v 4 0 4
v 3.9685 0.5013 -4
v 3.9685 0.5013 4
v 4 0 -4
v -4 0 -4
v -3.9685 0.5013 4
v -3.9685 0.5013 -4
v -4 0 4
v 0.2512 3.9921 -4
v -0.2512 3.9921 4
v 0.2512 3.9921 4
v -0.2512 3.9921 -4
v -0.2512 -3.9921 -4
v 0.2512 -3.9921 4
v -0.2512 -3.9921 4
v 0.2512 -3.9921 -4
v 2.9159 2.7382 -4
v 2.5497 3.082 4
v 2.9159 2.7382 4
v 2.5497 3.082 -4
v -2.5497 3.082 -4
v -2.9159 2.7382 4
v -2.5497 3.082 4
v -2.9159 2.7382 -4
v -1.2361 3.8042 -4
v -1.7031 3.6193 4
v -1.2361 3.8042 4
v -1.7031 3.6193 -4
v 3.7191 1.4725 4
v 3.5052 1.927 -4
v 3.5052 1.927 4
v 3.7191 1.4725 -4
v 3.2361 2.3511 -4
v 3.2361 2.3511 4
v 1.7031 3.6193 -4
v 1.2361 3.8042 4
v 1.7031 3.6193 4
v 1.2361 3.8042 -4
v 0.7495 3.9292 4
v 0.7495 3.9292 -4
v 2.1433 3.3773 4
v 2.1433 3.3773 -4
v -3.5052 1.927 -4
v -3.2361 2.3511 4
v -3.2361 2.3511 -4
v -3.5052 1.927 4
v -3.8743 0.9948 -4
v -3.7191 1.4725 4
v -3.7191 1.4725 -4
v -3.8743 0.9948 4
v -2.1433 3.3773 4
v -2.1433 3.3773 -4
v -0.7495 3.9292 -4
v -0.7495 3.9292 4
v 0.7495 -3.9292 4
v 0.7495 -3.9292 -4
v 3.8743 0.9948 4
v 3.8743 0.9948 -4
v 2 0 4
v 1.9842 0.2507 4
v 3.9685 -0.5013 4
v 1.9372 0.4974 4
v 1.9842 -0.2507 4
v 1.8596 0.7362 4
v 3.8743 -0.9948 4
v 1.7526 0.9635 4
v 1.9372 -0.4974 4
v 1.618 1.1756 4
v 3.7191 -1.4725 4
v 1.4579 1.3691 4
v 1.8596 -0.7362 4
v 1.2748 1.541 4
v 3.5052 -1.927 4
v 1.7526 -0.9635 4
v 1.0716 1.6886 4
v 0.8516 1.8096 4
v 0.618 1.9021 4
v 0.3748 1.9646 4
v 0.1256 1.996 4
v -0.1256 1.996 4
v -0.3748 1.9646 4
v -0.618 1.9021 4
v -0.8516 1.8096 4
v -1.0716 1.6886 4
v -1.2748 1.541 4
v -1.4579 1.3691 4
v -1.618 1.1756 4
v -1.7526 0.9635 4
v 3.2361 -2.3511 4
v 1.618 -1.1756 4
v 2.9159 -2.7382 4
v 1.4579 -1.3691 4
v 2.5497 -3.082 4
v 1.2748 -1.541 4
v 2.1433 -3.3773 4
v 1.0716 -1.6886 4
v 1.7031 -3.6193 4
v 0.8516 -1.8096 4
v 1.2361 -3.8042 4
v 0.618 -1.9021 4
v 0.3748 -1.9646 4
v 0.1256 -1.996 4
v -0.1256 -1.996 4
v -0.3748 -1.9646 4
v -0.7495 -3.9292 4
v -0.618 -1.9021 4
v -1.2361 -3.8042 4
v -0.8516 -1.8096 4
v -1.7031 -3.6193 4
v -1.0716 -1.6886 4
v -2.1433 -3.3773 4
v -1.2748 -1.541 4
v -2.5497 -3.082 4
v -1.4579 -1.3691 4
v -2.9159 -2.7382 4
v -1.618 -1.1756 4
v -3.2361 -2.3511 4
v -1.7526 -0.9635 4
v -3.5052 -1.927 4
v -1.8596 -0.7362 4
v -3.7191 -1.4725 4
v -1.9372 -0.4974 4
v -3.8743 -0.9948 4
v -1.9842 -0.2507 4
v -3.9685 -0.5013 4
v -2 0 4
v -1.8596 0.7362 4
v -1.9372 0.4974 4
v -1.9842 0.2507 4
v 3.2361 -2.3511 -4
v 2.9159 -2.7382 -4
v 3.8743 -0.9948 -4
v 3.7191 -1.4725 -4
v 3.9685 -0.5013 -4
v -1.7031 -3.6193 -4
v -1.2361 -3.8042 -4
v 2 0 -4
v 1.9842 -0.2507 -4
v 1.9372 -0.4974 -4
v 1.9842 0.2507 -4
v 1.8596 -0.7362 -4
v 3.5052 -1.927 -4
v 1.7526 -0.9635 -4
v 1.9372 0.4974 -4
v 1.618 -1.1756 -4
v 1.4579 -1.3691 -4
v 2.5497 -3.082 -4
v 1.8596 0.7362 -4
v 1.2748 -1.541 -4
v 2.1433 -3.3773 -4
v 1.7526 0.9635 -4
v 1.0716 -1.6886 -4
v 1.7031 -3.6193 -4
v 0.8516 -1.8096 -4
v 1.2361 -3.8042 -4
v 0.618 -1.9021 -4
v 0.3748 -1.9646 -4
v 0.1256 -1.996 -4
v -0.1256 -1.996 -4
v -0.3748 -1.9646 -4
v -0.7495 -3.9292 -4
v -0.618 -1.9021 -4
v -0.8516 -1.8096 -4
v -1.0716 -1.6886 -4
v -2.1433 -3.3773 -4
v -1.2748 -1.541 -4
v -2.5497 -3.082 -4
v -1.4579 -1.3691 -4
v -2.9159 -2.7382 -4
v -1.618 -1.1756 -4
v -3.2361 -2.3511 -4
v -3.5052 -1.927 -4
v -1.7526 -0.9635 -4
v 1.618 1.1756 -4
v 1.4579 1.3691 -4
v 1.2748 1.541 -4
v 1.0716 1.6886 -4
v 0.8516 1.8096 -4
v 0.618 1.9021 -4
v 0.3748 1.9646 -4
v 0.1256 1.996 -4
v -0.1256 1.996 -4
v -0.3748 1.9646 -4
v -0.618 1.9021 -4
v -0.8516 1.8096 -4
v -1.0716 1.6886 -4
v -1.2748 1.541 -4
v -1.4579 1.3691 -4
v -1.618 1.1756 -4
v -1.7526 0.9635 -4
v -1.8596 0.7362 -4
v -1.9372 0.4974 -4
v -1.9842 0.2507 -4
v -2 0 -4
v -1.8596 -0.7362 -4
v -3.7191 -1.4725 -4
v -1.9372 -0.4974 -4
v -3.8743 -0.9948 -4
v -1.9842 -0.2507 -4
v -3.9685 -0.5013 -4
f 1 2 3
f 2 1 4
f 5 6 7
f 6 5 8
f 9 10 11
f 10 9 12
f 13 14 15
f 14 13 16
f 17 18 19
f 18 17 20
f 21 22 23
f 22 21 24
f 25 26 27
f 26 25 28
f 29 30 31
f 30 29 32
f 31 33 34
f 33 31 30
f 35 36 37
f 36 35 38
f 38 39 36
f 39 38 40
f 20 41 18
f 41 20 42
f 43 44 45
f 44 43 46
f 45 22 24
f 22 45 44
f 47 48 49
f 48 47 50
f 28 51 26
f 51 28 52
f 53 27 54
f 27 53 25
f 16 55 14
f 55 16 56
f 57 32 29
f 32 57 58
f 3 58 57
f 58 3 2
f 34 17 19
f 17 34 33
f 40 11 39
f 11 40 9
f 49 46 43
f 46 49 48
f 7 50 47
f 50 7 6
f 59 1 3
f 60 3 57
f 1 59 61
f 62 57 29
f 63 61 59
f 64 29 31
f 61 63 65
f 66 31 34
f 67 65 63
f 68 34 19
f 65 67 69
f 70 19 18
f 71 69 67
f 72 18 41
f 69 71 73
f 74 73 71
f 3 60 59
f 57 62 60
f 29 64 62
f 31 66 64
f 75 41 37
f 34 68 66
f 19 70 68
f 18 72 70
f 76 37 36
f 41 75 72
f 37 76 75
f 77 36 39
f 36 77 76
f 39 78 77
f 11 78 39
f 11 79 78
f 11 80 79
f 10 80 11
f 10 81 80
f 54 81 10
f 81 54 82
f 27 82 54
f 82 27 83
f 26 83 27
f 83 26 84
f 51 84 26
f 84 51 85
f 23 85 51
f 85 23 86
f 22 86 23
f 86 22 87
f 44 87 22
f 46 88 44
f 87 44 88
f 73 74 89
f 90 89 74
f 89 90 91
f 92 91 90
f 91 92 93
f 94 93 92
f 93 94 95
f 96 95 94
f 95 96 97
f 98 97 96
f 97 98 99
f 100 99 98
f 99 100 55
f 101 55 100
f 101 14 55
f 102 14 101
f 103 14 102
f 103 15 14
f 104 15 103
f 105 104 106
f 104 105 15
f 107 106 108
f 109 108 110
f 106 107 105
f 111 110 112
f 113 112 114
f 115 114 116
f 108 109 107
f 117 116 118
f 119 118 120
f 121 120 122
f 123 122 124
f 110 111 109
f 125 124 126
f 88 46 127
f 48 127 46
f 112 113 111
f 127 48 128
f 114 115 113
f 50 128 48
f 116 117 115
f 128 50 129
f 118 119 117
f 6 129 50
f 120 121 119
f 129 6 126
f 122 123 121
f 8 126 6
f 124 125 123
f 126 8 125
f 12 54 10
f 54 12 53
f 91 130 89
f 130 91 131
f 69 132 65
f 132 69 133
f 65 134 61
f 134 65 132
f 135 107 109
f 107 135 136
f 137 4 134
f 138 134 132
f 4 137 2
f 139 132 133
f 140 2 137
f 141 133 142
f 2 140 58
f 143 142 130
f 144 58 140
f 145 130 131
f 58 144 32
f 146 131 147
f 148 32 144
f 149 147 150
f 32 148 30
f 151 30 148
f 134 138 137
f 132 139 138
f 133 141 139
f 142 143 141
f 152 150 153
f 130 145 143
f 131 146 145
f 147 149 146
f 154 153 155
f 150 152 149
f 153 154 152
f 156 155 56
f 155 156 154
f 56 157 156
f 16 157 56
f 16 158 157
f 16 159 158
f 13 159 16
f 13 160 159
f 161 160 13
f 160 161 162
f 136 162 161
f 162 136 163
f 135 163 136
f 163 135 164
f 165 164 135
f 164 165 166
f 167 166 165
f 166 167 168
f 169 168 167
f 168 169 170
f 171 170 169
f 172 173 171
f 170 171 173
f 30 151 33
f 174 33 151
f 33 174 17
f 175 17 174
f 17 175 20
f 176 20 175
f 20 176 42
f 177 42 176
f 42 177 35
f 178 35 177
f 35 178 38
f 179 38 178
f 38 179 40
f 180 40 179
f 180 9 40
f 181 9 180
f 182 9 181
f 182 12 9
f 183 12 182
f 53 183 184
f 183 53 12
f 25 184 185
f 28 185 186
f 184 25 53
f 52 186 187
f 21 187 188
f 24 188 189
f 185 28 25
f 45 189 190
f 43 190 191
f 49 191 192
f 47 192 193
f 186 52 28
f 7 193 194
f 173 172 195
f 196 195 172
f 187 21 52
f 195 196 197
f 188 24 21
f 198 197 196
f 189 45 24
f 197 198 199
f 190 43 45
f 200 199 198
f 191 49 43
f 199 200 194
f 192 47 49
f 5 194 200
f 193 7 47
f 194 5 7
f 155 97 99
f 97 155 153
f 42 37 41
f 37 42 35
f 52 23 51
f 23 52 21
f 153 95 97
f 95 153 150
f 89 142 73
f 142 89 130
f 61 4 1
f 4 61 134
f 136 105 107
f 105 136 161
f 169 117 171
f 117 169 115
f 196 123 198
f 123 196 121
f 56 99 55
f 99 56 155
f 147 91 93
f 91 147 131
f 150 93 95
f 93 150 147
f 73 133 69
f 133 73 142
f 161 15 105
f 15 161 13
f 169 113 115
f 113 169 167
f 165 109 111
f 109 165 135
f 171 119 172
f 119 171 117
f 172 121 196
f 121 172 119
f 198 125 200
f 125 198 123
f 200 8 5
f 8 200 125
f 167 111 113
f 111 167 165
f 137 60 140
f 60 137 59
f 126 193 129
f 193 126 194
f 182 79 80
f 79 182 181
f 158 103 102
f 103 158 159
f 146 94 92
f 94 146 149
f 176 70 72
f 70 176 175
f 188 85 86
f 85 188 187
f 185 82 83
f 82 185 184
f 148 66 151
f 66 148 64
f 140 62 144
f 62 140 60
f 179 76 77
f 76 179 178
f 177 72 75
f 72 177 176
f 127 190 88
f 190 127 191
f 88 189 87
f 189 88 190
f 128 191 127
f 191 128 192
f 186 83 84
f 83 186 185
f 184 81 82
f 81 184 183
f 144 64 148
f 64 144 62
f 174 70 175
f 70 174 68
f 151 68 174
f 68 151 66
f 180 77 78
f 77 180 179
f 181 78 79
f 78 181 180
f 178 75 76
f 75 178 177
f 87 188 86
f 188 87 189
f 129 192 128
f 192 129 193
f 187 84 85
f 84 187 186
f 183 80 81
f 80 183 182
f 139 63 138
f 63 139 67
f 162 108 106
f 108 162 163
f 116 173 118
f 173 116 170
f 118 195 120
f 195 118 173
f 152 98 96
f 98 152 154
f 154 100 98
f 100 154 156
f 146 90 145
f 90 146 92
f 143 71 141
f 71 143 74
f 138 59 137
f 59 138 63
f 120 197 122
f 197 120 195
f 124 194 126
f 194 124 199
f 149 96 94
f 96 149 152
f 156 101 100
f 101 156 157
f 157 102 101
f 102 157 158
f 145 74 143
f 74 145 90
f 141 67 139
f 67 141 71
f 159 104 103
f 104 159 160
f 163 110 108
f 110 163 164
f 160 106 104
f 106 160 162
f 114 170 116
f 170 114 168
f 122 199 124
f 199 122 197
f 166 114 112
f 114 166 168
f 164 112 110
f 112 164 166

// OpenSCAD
$fn = 50;


difference() {
	union() {
		translate(v = [0, 0, -4.0000000000]) {
			cylinder(h = 8, r = 4.0000000000);
		}
	}
	union() {
		translate(v = [0, 0, -100.0000000000]) {
			cylinder(h = 200, r = 2);
		}
	}
}
